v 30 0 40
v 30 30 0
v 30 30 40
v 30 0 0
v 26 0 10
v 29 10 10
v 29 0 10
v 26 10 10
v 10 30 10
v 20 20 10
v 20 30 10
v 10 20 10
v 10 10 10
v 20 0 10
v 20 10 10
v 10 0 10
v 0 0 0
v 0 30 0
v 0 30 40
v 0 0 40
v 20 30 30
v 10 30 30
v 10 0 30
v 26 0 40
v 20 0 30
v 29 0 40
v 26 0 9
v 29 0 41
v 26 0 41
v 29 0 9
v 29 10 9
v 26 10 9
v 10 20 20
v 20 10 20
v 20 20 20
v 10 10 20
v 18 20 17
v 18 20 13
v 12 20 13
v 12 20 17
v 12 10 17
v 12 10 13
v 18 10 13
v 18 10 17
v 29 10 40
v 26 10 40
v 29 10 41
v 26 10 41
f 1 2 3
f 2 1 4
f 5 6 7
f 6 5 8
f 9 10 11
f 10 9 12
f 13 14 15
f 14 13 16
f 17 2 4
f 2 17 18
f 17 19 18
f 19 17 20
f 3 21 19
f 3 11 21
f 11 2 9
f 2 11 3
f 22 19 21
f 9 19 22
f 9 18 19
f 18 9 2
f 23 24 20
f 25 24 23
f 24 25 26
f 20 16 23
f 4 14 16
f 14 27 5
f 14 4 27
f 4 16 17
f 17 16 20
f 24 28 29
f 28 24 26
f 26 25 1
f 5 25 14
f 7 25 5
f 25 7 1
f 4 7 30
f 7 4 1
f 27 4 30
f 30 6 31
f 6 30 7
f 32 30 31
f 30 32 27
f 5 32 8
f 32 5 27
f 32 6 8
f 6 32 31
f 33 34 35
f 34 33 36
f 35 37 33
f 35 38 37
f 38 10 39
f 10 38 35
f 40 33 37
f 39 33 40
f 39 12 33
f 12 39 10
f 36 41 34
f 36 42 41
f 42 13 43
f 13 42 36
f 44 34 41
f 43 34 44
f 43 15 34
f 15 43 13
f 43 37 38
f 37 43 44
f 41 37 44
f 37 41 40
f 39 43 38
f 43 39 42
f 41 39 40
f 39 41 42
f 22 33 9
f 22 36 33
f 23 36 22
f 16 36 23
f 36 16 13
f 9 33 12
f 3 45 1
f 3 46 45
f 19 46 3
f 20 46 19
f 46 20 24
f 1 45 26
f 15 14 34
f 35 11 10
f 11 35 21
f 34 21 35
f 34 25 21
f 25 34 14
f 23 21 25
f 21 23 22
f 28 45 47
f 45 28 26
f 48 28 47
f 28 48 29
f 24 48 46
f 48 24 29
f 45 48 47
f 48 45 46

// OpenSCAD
// Base block
module base_block() {
    difference() {
        cube([30, 30, 10], center = false);
        // Adjusted notch: smaller and positioned closer to the top edge
        translate([26, 0, 9]) cube([3, 10, 1], center = false); // Notch
    }
}

// Top block
module top_block() {
    union() {
        cube([30, 30, 10], center = false);
        // Adjusted protrusion: narrower and shorter
        translate([26, 0, 10]) cube([3, 10, 1], center = false); // Protrusion
    }
}

// Side block
module side_block() {
    difference() {
        cube([10, 30, 30], center = false);
        // Adjusted cutout: shallower and positioned closer to the top edge
        translate([0, 0, 22]) cube([10, 10, 8], center = false); // Cutout
    }
}

// Connector block
module connector_block() {
    difference() {
        cube([30, 10, 10], center = false);
        // Adjusted groove: narrower and more recessed
        translate([12, 0, 3]) cube([6, 10, 4], center = false); // Groove
    }
}

// Assembly
module assembly() {
    // Layer 4: Base block
    base_block();

    // Layer 3: Connector block
    translate([0, 10, 10]) connector_block();

    // Layer 2: Side blocks
    translate([0, 0, 10]) side_block();
    translate([20, 0, 10]) side_block();

    // Layer 1: Top block
    translate([0, 0, 30]) top_block();
}

// Render the assembly
assembly();
